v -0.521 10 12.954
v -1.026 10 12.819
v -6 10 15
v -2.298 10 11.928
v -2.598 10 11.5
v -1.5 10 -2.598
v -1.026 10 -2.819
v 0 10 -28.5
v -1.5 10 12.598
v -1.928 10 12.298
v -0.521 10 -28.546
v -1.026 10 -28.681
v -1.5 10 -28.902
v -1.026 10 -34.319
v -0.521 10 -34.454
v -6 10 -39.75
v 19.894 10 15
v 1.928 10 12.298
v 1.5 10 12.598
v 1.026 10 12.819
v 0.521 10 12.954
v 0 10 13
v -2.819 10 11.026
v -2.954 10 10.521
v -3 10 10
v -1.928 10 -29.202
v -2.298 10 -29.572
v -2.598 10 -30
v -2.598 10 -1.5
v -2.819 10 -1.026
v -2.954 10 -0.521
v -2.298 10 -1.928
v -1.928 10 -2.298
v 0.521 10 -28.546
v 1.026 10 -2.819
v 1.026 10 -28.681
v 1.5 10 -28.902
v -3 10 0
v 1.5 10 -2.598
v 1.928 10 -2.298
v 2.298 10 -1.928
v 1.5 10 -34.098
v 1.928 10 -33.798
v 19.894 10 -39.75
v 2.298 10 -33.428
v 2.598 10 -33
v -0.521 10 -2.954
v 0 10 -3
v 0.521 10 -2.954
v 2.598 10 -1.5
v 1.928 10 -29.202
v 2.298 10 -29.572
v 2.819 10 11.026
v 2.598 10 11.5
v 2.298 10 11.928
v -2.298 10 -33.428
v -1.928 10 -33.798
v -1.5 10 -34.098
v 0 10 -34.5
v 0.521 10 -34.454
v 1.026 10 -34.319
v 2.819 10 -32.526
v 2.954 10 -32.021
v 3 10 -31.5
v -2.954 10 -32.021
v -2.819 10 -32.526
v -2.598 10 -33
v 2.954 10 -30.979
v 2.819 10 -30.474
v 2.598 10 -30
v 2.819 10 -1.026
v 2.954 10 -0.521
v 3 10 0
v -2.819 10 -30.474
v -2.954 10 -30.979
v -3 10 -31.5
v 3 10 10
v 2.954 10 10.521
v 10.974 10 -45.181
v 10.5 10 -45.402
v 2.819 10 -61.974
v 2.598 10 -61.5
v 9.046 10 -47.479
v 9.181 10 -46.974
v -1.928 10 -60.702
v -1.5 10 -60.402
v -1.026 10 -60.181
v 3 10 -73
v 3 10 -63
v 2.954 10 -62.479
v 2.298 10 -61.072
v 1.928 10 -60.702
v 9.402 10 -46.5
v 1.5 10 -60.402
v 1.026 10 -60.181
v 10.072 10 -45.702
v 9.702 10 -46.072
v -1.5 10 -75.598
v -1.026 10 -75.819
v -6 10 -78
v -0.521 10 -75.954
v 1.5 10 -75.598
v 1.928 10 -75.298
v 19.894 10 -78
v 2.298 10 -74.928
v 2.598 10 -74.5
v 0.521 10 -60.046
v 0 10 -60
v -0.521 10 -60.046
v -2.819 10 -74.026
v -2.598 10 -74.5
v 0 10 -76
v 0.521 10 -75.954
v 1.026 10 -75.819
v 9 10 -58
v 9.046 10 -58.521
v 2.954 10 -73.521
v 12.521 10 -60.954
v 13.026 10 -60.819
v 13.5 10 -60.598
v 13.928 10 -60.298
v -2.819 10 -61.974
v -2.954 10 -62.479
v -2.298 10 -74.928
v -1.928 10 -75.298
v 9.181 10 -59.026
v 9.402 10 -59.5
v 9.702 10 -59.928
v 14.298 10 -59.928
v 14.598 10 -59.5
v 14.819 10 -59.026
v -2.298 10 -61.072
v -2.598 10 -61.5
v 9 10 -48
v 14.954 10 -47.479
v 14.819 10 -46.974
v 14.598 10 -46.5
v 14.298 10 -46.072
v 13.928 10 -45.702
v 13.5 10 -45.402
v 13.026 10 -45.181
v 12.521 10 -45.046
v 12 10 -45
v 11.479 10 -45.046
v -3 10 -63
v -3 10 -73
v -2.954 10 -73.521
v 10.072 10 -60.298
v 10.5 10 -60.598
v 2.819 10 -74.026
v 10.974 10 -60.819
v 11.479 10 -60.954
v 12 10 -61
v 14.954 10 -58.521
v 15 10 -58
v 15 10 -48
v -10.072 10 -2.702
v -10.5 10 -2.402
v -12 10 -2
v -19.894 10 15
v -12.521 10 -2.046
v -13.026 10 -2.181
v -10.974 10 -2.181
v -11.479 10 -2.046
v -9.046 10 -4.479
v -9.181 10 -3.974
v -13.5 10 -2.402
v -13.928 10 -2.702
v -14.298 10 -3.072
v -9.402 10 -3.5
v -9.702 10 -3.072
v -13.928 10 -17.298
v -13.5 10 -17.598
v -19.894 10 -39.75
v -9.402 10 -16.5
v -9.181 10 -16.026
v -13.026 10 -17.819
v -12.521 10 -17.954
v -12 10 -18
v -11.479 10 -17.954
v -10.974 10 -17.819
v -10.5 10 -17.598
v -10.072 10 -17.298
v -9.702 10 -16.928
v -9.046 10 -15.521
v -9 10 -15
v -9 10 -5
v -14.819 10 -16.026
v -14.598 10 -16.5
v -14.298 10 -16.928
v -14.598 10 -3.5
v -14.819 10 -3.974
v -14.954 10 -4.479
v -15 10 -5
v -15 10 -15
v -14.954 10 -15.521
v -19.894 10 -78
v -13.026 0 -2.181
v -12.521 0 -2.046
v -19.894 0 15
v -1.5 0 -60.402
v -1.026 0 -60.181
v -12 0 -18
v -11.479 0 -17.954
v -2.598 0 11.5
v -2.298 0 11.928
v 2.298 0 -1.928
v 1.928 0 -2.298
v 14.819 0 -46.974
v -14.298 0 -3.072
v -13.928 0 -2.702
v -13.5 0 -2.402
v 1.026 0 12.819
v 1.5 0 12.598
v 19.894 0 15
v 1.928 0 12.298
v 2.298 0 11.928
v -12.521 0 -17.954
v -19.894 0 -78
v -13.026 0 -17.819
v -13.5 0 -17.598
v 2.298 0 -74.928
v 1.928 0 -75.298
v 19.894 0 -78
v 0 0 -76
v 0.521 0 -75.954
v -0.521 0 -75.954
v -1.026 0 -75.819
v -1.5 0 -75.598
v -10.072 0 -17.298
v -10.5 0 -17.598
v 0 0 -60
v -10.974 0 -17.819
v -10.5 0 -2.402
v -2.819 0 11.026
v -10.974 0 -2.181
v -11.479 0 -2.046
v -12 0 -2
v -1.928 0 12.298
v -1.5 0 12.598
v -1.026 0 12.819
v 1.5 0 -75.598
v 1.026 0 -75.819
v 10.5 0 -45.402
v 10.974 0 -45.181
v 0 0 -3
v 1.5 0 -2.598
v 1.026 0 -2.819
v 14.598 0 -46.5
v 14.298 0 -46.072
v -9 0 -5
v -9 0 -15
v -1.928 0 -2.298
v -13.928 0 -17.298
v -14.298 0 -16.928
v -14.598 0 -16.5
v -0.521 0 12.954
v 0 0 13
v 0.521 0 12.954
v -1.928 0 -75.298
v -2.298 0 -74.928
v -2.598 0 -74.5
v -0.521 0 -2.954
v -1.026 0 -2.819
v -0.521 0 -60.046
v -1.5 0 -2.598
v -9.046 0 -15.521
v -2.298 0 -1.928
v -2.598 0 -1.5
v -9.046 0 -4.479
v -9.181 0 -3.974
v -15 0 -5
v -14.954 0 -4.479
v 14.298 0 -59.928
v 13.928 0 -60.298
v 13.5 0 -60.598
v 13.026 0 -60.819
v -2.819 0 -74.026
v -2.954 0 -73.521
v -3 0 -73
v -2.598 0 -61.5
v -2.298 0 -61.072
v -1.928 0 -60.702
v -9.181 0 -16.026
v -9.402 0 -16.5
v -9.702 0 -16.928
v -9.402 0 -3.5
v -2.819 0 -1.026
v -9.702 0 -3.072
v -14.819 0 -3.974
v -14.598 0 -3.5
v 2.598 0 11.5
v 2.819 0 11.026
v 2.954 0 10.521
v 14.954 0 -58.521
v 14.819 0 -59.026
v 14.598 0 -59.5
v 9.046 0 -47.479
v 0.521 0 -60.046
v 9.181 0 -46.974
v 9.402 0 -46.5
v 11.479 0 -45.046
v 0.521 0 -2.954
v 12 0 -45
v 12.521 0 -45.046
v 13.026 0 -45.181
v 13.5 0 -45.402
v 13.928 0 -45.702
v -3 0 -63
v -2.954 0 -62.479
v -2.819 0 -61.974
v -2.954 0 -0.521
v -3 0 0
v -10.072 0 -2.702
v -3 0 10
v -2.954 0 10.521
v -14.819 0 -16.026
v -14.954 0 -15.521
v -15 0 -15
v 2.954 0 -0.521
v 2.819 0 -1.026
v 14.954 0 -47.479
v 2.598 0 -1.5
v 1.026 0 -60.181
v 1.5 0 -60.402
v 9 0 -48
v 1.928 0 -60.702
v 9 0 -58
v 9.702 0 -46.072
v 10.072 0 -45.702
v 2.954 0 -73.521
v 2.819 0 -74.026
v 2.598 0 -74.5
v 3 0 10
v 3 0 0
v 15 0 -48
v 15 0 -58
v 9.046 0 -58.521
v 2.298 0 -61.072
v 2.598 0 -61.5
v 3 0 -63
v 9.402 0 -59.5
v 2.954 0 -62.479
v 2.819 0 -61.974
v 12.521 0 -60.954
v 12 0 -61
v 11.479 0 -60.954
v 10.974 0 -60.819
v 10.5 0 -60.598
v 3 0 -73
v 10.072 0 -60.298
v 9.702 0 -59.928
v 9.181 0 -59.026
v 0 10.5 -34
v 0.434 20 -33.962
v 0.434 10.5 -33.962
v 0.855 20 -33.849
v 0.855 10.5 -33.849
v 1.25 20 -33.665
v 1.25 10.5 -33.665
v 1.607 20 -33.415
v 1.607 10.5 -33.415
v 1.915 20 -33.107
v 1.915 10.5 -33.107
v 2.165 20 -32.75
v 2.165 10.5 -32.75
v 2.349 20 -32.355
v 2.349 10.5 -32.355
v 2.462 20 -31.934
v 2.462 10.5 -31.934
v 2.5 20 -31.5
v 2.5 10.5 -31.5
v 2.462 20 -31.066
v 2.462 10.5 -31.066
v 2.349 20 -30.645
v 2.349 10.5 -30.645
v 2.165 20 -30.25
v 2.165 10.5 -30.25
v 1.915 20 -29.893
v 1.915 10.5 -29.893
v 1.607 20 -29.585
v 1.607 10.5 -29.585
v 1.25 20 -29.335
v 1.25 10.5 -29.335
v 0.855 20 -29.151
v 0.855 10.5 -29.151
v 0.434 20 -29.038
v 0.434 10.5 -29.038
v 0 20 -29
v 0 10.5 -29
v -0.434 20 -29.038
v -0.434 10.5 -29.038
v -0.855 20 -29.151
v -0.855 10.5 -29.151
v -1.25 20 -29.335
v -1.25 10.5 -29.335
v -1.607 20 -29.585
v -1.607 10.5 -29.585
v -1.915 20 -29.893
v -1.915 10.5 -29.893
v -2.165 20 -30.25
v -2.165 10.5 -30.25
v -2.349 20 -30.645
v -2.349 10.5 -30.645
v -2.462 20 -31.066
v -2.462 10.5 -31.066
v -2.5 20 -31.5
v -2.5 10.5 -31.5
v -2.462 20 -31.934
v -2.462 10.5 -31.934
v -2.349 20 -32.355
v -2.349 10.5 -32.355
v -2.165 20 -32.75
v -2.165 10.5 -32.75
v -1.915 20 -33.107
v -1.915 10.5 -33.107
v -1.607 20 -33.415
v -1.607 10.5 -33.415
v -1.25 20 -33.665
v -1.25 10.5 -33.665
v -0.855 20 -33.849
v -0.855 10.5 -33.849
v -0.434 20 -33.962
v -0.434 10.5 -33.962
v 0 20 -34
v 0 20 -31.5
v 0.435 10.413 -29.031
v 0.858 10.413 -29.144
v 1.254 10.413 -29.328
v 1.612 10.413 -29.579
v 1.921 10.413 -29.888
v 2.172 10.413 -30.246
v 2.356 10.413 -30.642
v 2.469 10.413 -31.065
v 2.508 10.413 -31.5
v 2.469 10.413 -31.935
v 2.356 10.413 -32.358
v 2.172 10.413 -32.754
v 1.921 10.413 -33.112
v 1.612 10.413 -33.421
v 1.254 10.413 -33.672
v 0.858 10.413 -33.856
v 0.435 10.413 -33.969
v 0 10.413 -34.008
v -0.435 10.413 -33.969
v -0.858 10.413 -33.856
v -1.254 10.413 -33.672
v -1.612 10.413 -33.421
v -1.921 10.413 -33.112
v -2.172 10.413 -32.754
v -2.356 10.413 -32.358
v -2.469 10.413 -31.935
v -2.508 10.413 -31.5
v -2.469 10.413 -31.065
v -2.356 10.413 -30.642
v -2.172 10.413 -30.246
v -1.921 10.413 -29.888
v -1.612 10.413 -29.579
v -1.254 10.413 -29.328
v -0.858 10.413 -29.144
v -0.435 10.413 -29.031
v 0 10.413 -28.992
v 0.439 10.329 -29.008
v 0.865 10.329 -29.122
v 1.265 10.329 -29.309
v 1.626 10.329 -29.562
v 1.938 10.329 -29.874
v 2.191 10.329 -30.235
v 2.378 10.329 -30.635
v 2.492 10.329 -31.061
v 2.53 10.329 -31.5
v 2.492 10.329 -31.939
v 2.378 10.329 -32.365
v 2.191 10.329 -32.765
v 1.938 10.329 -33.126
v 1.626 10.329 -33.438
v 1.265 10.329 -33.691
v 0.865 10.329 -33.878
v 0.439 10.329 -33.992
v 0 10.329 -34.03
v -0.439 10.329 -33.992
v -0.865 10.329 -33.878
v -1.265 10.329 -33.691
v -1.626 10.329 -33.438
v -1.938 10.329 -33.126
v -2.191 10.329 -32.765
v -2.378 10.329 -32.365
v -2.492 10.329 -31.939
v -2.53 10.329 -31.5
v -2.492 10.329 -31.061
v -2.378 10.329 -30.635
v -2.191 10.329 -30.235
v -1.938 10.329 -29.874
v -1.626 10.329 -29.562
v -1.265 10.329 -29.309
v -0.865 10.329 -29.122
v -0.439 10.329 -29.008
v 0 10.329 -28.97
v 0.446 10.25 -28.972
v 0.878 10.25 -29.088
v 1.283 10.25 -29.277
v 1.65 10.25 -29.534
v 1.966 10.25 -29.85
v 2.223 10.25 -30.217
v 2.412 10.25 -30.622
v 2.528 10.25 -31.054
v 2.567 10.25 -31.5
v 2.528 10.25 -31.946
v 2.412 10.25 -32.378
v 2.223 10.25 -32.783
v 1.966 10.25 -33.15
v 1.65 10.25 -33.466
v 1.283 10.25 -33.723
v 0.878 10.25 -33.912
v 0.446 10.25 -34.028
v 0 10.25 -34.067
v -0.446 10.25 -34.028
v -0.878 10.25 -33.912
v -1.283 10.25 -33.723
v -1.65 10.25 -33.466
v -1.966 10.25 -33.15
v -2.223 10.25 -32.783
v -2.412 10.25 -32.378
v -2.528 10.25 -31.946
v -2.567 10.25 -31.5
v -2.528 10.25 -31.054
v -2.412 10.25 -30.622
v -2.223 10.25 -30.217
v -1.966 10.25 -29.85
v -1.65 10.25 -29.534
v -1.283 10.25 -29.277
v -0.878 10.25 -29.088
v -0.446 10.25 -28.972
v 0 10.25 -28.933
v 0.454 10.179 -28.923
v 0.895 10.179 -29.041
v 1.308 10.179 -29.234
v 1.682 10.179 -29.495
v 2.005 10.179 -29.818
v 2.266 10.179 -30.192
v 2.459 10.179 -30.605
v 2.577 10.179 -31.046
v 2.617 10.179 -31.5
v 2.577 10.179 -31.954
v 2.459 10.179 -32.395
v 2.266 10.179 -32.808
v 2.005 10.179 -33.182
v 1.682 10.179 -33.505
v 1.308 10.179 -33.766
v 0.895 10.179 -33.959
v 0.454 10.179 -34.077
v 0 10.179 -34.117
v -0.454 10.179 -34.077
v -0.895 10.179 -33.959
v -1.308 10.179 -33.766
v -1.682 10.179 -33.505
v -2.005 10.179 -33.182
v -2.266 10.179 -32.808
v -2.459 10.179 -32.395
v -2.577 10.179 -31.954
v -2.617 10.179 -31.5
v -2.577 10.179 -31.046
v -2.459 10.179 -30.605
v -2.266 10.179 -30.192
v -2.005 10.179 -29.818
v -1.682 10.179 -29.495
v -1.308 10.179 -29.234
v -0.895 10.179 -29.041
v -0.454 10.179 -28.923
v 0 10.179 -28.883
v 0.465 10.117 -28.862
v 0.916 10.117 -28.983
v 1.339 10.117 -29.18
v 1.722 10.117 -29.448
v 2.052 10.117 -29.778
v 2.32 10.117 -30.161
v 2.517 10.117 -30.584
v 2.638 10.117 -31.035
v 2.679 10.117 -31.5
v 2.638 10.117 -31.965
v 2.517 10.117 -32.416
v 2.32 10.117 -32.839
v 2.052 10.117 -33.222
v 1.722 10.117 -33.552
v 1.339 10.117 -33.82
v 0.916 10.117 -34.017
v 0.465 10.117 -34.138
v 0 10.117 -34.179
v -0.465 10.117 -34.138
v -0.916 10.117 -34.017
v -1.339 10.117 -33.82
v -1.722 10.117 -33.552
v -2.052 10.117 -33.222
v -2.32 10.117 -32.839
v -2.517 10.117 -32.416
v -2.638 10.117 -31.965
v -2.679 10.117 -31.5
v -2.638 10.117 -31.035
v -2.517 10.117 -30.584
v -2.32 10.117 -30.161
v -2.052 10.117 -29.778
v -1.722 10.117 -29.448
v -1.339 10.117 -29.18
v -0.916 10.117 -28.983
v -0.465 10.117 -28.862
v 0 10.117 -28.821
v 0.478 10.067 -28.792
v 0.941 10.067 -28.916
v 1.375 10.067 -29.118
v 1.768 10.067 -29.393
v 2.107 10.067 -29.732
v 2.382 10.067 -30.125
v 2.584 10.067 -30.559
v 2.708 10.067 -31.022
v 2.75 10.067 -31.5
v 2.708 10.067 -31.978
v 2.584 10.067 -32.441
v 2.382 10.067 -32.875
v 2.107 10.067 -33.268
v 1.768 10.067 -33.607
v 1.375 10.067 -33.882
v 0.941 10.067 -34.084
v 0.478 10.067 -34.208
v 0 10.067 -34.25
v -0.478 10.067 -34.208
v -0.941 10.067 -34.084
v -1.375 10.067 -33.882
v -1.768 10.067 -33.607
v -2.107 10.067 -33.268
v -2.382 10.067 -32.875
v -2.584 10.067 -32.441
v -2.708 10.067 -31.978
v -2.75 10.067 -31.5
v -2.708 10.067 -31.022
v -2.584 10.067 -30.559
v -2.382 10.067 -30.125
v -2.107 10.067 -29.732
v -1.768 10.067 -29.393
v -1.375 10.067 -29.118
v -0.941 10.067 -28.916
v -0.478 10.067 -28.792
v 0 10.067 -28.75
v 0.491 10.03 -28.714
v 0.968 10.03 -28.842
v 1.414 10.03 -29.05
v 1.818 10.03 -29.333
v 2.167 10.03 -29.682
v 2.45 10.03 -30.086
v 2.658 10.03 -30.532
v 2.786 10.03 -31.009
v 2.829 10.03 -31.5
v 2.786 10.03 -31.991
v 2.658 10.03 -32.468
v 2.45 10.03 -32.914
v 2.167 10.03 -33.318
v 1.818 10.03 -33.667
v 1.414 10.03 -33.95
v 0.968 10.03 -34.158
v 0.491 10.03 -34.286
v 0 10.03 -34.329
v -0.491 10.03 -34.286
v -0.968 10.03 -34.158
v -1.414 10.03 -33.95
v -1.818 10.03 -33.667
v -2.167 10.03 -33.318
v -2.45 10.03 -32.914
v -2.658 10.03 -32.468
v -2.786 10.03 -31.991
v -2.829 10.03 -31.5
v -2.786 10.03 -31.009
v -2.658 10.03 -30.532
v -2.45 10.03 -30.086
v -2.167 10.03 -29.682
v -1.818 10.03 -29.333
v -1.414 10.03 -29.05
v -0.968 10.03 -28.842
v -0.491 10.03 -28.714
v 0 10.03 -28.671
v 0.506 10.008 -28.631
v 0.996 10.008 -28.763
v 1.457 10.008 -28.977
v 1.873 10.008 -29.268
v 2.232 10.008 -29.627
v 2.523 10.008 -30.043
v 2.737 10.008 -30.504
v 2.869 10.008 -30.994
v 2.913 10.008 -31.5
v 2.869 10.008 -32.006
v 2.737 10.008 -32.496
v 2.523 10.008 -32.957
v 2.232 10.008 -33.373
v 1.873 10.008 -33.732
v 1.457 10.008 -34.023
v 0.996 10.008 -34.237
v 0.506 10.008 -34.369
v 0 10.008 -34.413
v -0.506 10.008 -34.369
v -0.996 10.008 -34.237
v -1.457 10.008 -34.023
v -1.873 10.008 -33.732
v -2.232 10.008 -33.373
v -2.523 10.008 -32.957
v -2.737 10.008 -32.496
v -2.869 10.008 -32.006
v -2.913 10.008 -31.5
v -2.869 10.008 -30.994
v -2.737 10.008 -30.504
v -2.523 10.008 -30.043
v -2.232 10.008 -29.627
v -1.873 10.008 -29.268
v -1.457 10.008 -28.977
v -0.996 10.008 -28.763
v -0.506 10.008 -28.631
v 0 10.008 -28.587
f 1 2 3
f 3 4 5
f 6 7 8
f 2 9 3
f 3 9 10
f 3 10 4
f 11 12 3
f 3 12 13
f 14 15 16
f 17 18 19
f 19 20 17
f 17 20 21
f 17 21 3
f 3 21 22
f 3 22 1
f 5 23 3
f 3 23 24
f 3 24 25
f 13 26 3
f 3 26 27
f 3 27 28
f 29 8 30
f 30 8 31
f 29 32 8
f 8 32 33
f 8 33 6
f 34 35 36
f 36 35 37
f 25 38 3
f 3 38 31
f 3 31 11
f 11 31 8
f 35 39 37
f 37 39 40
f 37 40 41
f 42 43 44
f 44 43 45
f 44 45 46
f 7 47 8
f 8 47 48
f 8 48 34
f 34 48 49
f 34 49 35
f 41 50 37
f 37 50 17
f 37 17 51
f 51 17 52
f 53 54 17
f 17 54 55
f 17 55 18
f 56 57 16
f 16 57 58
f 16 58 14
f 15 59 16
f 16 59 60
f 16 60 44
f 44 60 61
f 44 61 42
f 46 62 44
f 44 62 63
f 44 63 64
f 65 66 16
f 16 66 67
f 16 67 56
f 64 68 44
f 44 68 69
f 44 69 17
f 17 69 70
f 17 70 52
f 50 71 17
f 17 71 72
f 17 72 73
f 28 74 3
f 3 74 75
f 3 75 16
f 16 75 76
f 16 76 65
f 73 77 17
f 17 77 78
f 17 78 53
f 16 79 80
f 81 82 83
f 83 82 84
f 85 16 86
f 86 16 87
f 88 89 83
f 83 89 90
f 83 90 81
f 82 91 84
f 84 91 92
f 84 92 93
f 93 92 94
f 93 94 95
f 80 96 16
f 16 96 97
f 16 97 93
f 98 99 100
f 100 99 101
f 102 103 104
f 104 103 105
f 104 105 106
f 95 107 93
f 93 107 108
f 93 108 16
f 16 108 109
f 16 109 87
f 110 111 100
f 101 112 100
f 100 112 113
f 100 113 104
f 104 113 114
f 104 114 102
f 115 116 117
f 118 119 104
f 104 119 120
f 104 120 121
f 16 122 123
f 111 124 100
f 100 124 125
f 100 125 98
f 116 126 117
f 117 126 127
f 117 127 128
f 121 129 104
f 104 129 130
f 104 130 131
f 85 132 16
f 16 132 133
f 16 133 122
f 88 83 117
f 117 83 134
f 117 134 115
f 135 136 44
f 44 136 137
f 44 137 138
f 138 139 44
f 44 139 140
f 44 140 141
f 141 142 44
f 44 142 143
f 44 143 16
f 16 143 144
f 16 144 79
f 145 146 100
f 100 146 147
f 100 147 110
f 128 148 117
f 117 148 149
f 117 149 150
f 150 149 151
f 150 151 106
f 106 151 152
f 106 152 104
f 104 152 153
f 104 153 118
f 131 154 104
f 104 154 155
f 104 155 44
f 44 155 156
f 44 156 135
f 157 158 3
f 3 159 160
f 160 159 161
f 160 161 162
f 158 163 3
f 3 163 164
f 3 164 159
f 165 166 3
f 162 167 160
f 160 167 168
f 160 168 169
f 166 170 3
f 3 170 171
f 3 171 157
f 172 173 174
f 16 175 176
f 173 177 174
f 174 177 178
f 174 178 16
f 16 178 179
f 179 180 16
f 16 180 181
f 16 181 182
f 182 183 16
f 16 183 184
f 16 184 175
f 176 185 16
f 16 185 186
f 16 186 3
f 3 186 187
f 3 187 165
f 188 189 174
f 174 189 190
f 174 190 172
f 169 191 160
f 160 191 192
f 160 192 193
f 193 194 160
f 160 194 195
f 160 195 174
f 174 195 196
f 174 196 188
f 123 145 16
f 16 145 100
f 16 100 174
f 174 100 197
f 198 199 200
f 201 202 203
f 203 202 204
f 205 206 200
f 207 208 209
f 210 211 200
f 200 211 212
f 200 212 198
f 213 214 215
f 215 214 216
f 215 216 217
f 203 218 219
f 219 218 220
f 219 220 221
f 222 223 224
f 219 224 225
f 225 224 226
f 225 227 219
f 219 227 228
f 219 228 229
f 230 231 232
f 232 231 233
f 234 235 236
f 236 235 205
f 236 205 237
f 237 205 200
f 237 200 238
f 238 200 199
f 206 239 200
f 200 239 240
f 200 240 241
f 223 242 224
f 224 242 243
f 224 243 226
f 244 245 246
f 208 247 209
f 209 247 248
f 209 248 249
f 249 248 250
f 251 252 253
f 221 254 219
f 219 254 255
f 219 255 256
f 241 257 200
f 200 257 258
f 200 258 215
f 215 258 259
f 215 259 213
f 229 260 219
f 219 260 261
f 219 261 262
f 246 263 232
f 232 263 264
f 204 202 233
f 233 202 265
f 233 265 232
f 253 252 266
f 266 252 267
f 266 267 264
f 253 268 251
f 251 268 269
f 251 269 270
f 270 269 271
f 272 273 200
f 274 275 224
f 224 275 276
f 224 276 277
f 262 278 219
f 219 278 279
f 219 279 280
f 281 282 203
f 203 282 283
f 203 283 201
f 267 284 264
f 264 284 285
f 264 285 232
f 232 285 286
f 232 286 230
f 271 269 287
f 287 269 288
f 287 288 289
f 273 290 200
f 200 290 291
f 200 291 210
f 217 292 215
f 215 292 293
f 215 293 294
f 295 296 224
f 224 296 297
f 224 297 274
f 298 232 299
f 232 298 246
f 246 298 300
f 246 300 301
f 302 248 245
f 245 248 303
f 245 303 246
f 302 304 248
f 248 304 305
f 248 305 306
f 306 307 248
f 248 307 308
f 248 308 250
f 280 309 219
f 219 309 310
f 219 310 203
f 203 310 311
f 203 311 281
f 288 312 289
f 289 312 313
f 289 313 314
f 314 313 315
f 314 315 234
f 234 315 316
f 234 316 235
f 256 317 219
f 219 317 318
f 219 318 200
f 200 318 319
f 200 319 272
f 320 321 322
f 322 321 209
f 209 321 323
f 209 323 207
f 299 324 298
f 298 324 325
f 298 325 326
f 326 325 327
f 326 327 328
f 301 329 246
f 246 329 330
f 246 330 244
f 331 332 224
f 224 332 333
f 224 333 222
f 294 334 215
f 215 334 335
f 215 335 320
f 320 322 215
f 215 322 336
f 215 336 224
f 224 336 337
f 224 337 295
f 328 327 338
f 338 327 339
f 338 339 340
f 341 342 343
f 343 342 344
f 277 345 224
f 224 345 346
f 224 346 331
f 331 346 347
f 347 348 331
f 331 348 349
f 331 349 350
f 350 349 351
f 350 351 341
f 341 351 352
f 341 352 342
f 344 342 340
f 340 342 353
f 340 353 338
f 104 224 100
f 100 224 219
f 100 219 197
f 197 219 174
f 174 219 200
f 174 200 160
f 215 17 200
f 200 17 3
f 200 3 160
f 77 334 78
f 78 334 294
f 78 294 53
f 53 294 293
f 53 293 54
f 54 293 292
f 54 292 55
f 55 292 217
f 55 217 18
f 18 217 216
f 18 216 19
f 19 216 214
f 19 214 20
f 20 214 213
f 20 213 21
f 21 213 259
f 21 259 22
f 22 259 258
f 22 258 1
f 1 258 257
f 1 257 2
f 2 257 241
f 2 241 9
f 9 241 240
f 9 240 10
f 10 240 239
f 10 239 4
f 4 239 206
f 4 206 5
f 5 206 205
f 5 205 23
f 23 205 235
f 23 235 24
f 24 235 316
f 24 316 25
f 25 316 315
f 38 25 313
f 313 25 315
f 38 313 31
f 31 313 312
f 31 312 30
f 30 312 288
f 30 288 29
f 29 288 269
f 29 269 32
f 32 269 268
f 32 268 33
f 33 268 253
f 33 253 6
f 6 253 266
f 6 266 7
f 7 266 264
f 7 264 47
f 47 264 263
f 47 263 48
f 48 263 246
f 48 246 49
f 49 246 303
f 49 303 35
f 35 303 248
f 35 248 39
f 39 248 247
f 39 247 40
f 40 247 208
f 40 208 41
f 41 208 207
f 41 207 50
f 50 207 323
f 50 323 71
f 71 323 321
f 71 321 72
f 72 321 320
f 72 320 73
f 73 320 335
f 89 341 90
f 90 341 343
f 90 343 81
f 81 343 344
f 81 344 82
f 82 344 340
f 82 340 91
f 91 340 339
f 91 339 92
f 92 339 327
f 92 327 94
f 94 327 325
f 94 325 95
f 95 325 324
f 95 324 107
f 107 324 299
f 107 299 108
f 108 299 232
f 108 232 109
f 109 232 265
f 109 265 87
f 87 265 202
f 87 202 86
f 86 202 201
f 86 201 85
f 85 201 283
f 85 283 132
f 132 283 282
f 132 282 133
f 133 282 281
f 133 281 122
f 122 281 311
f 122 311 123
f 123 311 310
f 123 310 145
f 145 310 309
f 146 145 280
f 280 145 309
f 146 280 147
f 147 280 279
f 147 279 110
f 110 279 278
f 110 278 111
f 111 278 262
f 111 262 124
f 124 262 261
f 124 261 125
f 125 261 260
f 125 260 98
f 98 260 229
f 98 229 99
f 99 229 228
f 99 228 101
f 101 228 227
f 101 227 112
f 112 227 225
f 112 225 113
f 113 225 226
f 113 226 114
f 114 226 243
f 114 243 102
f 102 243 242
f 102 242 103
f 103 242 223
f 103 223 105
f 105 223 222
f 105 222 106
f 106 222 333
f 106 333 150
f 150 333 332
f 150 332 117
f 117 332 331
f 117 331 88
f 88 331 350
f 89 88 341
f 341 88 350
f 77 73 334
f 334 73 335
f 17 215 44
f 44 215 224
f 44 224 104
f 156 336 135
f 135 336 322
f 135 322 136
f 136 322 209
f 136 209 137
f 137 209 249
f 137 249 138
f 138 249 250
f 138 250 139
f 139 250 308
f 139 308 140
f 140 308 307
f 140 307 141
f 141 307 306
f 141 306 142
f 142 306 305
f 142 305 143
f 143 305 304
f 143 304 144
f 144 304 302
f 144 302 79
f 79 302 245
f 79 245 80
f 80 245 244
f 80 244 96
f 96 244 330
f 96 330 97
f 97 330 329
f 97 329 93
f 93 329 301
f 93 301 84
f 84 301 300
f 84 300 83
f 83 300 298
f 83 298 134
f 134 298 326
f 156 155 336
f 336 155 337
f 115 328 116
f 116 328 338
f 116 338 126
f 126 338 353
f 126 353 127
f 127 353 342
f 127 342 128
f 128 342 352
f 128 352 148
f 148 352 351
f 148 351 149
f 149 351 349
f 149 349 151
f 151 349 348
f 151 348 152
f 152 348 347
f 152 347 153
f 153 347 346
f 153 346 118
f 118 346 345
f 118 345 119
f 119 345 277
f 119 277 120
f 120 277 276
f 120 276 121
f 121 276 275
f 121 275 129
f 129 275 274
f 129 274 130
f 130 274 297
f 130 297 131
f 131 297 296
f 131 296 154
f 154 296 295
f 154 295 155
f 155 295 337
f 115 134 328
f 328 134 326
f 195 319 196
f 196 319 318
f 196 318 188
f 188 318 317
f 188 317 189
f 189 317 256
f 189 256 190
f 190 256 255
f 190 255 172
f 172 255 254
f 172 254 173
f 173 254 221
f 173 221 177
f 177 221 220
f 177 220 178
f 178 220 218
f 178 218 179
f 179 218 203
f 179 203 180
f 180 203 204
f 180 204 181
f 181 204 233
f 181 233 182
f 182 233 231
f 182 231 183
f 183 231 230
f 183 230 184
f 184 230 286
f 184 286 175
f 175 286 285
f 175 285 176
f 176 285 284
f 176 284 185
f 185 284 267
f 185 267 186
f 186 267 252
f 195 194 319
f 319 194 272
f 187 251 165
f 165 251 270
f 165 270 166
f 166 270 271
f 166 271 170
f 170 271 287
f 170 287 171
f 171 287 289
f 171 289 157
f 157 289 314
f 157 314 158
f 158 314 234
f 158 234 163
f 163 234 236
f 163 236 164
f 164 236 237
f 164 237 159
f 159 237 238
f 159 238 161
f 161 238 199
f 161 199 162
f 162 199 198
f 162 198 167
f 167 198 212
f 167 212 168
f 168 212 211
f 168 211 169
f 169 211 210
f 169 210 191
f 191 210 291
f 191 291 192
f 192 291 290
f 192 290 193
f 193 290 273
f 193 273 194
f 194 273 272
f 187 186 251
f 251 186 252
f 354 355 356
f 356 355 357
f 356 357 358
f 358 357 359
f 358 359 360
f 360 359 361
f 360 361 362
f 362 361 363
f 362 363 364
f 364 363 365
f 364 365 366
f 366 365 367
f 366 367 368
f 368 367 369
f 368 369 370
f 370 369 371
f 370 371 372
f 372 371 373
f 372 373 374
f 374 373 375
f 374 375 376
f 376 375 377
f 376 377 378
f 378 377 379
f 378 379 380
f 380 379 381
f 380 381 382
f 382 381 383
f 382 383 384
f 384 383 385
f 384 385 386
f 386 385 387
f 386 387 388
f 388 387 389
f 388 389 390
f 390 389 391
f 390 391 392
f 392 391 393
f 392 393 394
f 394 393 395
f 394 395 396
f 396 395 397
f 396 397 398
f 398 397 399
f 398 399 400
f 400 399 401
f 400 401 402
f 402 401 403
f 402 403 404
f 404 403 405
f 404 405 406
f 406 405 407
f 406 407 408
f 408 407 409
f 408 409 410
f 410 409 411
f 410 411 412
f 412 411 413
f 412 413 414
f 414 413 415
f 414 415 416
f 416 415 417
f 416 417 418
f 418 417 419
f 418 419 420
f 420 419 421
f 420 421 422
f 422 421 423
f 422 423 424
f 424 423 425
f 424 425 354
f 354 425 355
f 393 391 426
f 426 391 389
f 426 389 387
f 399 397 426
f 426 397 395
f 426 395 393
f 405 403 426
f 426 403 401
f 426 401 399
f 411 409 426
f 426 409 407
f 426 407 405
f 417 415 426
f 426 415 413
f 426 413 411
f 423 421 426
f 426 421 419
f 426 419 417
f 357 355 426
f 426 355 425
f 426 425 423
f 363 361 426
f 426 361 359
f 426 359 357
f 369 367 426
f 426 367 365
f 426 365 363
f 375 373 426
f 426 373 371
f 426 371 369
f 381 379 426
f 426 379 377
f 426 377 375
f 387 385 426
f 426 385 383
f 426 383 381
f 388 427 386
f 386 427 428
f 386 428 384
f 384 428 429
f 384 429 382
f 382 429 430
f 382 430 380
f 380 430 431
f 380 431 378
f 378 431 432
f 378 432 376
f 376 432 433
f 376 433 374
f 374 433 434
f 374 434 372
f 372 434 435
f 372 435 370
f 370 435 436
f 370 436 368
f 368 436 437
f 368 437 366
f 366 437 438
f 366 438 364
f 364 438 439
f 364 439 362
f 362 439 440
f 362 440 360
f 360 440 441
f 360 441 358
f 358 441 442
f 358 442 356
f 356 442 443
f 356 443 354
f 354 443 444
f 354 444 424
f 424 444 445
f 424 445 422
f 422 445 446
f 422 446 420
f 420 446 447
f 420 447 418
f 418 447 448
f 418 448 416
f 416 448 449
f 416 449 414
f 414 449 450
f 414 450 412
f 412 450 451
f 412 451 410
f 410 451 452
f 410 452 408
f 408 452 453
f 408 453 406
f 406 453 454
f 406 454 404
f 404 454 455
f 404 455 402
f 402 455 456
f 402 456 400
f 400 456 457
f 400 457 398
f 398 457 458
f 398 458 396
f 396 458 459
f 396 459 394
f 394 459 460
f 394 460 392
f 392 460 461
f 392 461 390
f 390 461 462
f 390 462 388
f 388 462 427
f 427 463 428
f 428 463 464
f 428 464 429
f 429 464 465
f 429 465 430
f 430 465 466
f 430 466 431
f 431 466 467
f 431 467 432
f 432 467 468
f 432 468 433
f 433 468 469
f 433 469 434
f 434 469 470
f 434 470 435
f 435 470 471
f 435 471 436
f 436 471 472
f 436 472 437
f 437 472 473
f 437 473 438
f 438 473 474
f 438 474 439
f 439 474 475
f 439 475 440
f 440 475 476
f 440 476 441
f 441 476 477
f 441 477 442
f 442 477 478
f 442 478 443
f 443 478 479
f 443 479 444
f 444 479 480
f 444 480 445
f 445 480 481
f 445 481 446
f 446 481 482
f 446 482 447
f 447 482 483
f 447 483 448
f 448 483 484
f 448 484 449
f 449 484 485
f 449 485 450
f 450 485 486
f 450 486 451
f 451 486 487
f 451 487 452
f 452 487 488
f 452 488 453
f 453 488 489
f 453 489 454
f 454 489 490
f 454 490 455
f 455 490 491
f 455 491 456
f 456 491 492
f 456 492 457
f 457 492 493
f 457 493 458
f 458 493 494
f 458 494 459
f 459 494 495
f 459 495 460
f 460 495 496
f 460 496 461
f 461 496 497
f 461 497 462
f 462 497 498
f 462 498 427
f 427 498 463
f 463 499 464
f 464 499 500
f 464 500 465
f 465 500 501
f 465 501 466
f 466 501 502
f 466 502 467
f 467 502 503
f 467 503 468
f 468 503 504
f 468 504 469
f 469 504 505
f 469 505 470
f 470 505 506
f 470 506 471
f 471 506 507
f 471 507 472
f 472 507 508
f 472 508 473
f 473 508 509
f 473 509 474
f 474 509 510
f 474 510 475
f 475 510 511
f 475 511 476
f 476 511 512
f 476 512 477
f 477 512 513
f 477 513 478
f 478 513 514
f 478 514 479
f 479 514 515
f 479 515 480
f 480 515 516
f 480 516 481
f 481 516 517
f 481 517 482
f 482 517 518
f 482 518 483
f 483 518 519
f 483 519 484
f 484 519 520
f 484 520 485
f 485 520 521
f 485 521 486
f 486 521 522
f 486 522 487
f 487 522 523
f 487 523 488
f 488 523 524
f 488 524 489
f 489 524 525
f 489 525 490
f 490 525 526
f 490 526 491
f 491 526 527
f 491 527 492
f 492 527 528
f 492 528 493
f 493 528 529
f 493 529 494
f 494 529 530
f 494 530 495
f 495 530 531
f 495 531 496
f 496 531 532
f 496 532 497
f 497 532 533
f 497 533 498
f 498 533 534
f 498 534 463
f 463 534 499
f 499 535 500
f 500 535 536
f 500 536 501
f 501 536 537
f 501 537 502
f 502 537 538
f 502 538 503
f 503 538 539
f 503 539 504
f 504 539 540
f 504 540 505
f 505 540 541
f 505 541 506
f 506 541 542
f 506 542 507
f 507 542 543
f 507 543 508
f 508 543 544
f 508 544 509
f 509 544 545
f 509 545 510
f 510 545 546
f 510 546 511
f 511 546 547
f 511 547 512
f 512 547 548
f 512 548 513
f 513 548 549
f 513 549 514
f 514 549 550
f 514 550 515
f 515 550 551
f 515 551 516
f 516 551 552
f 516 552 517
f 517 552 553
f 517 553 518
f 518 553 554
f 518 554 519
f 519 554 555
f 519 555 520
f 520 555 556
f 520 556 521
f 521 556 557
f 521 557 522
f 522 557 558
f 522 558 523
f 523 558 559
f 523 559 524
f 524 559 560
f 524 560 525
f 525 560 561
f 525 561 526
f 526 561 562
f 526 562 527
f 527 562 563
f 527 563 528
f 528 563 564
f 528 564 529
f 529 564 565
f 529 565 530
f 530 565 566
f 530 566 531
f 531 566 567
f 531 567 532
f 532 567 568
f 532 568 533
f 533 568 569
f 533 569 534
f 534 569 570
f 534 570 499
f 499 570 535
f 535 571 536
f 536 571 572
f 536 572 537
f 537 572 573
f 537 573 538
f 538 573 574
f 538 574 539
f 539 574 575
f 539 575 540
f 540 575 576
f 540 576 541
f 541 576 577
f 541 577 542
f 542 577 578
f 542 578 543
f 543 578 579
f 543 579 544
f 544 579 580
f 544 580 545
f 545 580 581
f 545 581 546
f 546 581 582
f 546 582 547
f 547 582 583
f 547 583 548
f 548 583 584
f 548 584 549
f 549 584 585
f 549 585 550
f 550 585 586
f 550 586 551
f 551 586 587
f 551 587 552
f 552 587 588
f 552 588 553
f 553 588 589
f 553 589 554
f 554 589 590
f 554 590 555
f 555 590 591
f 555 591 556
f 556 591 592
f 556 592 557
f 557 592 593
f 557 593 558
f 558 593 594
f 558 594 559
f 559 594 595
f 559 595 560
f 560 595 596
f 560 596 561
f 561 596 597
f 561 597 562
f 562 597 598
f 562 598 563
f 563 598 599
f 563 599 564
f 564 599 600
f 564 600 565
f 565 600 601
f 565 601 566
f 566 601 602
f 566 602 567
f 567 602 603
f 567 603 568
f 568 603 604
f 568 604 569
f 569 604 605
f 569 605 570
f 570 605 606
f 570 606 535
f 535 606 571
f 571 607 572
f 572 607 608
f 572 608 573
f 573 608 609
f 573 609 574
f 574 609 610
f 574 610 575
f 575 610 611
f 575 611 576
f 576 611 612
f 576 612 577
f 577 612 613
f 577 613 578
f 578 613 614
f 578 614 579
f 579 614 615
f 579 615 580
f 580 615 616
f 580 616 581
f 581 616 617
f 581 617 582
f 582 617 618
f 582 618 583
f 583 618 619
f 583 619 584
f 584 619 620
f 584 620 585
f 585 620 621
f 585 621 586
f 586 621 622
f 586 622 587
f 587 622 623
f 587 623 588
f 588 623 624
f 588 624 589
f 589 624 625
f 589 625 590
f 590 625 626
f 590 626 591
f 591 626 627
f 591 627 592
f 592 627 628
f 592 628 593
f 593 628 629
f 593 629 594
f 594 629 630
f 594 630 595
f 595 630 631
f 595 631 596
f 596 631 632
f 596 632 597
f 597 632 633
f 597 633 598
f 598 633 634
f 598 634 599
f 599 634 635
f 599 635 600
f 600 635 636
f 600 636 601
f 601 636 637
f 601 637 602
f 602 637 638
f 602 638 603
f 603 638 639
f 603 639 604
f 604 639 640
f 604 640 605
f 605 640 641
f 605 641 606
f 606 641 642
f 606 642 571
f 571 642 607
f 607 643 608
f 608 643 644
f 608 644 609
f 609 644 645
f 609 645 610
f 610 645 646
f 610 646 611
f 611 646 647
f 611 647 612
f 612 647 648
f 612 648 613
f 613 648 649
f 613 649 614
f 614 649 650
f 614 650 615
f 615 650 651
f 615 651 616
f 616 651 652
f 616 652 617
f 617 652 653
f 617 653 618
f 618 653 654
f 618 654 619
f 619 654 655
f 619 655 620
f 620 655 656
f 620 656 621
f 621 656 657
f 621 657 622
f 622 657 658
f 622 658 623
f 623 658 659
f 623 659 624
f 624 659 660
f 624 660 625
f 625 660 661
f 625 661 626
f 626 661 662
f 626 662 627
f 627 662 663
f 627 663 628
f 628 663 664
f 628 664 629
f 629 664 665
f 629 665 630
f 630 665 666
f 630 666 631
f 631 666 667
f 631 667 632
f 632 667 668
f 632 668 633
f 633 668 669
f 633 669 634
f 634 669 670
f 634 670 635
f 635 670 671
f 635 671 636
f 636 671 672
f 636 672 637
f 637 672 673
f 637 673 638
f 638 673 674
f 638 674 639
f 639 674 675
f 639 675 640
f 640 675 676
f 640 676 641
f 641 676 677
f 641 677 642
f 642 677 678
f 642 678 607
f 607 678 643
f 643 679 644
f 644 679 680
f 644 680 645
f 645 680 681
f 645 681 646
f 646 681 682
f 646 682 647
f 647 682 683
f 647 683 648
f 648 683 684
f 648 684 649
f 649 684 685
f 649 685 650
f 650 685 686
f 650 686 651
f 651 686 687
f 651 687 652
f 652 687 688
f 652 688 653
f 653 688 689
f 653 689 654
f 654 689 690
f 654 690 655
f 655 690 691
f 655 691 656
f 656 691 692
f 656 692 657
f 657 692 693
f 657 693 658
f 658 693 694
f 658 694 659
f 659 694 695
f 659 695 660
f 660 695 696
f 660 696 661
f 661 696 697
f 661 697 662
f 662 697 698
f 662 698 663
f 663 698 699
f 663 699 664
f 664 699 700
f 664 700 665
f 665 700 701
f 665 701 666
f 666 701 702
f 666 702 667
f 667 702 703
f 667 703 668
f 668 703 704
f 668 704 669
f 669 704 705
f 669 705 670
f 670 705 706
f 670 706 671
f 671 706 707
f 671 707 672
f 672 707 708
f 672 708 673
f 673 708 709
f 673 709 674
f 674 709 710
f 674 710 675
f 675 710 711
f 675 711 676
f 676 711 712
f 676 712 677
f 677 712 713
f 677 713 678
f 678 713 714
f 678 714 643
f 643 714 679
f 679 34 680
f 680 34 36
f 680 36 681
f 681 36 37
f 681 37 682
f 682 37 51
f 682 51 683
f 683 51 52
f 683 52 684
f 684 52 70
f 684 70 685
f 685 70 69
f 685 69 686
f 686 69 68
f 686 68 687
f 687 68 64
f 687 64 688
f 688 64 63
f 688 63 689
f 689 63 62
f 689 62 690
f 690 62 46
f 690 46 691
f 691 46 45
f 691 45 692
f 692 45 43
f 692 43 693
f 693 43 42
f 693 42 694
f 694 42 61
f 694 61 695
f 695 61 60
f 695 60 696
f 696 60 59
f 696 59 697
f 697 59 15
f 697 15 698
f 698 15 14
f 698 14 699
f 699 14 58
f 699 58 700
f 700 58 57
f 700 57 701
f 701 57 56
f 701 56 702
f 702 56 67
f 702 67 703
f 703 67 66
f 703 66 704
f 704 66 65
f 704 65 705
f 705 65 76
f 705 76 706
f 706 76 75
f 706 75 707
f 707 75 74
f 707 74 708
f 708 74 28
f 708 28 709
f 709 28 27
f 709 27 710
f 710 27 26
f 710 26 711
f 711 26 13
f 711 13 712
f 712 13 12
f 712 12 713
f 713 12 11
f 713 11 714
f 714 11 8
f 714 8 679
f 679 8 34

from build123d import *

# Parameters (mm, degrees)
BOSS_EXTRUDE1_DEPTH = 10
CUT_EXTRUDE1_DEPTH  = 82.115739792
SKETCH5_R           = 2.5
BOSS_EXTRUDE2_DEPTH = 10
FILLET1_R           = 0.5


with BuildPart() as part:
    # Sketch2 → Boss-Extrude1 (new body)
    with BuildSketch(Plane(origin=(0, 0, 0), x_dir=(1, 0, 0), z_dir=(0, 1, 0))):
        with BuildLine():
            Line((-19.893799085, 78), (0, 78))
            Line((0, 78), (0, 76))
            ThreePointArc((0, 76), (-2.121320344, 75.121320344), (-3, 73))
            Line((-3, 73), (-3, 63))
            ThreePointArc((-3, 63), (-2.121320344, 60.878679656), (0, 60))
            Line((0, 60), (0, 3))
            ThreePointArc((0, 3), (-2.121320344, 2.121320344), (-3, 0))
            Line((-3, 0), (-3, -10))
            ThreePointArc((-3, -10), (-2.121320344, -12.121320344), (0, -13))
            Line((0, -13), (0, -15))
            Line((0, -15), (-19.893799085, -15))
            Line((-19.893799085, -15), (-19.893799085, 78))
        make_face()
    boss_extrude1 = extrude(amount=BOSS_EXTRUDE1_DEPTH)

    # Mirror1: Boss-Extrude1 across Right Plane
    add(boss_extrude1.mirror(Plane(origin=(0, 0, 0), x_dir=(0, 0, -1), z_dir=(1, 0, 0))))

    # Sketch4 → Cut-Extrude1 (cut, through all)
    with BuildSketch(Plane(origin=(0, 0, 0), x_dir=(1, 0, 0), z_dir=(0, 1, 0))):
        with BuildLine():
            Line((-15, 15), (-15, 5))
            ThreePointArc((-15, 5), (-12, 2), (-9, 5))
            Line((-9, 5), (-9, 15))
            ThreePointArc((-9, 15), (-12, 18), (-15, 15))
        make_face()
        with BuildLine():
            Line((15, 48), (15, 58))
            ThreePointArc((15, 58), (12, 61), (9, 58))
            Line((9, 58), (9, 48))
            ThreePointArc((9, 48), (12, 45), (15, 48))
        make_face()
    extrude(amount=CUT_EXTRUDE1_DEPTH, mode=Mode.SUBTRACT)

    # Sketch5 → Boss-Extrude2 (add)
    with BuildSketch(Plane(origin=(0, 10, 0), x_dir=(1, 0, 0), z_dir=(0, 1, 0))):
        with Locations(Location((0, 31.5, 0), (0, 0, 270))):
            Circle(SKETCH5_R)
    extrude(amount=BOSS_EXTRUDE2_DEPTH)

    # Fillet1
    fillet1_edges = [part.edges().sort_by_distance(p)[0] for p in [
        (0, 10, -34),
    ]]
    fillet(fillet1_edges, radius=FILLET1_R)


solid = part.part
